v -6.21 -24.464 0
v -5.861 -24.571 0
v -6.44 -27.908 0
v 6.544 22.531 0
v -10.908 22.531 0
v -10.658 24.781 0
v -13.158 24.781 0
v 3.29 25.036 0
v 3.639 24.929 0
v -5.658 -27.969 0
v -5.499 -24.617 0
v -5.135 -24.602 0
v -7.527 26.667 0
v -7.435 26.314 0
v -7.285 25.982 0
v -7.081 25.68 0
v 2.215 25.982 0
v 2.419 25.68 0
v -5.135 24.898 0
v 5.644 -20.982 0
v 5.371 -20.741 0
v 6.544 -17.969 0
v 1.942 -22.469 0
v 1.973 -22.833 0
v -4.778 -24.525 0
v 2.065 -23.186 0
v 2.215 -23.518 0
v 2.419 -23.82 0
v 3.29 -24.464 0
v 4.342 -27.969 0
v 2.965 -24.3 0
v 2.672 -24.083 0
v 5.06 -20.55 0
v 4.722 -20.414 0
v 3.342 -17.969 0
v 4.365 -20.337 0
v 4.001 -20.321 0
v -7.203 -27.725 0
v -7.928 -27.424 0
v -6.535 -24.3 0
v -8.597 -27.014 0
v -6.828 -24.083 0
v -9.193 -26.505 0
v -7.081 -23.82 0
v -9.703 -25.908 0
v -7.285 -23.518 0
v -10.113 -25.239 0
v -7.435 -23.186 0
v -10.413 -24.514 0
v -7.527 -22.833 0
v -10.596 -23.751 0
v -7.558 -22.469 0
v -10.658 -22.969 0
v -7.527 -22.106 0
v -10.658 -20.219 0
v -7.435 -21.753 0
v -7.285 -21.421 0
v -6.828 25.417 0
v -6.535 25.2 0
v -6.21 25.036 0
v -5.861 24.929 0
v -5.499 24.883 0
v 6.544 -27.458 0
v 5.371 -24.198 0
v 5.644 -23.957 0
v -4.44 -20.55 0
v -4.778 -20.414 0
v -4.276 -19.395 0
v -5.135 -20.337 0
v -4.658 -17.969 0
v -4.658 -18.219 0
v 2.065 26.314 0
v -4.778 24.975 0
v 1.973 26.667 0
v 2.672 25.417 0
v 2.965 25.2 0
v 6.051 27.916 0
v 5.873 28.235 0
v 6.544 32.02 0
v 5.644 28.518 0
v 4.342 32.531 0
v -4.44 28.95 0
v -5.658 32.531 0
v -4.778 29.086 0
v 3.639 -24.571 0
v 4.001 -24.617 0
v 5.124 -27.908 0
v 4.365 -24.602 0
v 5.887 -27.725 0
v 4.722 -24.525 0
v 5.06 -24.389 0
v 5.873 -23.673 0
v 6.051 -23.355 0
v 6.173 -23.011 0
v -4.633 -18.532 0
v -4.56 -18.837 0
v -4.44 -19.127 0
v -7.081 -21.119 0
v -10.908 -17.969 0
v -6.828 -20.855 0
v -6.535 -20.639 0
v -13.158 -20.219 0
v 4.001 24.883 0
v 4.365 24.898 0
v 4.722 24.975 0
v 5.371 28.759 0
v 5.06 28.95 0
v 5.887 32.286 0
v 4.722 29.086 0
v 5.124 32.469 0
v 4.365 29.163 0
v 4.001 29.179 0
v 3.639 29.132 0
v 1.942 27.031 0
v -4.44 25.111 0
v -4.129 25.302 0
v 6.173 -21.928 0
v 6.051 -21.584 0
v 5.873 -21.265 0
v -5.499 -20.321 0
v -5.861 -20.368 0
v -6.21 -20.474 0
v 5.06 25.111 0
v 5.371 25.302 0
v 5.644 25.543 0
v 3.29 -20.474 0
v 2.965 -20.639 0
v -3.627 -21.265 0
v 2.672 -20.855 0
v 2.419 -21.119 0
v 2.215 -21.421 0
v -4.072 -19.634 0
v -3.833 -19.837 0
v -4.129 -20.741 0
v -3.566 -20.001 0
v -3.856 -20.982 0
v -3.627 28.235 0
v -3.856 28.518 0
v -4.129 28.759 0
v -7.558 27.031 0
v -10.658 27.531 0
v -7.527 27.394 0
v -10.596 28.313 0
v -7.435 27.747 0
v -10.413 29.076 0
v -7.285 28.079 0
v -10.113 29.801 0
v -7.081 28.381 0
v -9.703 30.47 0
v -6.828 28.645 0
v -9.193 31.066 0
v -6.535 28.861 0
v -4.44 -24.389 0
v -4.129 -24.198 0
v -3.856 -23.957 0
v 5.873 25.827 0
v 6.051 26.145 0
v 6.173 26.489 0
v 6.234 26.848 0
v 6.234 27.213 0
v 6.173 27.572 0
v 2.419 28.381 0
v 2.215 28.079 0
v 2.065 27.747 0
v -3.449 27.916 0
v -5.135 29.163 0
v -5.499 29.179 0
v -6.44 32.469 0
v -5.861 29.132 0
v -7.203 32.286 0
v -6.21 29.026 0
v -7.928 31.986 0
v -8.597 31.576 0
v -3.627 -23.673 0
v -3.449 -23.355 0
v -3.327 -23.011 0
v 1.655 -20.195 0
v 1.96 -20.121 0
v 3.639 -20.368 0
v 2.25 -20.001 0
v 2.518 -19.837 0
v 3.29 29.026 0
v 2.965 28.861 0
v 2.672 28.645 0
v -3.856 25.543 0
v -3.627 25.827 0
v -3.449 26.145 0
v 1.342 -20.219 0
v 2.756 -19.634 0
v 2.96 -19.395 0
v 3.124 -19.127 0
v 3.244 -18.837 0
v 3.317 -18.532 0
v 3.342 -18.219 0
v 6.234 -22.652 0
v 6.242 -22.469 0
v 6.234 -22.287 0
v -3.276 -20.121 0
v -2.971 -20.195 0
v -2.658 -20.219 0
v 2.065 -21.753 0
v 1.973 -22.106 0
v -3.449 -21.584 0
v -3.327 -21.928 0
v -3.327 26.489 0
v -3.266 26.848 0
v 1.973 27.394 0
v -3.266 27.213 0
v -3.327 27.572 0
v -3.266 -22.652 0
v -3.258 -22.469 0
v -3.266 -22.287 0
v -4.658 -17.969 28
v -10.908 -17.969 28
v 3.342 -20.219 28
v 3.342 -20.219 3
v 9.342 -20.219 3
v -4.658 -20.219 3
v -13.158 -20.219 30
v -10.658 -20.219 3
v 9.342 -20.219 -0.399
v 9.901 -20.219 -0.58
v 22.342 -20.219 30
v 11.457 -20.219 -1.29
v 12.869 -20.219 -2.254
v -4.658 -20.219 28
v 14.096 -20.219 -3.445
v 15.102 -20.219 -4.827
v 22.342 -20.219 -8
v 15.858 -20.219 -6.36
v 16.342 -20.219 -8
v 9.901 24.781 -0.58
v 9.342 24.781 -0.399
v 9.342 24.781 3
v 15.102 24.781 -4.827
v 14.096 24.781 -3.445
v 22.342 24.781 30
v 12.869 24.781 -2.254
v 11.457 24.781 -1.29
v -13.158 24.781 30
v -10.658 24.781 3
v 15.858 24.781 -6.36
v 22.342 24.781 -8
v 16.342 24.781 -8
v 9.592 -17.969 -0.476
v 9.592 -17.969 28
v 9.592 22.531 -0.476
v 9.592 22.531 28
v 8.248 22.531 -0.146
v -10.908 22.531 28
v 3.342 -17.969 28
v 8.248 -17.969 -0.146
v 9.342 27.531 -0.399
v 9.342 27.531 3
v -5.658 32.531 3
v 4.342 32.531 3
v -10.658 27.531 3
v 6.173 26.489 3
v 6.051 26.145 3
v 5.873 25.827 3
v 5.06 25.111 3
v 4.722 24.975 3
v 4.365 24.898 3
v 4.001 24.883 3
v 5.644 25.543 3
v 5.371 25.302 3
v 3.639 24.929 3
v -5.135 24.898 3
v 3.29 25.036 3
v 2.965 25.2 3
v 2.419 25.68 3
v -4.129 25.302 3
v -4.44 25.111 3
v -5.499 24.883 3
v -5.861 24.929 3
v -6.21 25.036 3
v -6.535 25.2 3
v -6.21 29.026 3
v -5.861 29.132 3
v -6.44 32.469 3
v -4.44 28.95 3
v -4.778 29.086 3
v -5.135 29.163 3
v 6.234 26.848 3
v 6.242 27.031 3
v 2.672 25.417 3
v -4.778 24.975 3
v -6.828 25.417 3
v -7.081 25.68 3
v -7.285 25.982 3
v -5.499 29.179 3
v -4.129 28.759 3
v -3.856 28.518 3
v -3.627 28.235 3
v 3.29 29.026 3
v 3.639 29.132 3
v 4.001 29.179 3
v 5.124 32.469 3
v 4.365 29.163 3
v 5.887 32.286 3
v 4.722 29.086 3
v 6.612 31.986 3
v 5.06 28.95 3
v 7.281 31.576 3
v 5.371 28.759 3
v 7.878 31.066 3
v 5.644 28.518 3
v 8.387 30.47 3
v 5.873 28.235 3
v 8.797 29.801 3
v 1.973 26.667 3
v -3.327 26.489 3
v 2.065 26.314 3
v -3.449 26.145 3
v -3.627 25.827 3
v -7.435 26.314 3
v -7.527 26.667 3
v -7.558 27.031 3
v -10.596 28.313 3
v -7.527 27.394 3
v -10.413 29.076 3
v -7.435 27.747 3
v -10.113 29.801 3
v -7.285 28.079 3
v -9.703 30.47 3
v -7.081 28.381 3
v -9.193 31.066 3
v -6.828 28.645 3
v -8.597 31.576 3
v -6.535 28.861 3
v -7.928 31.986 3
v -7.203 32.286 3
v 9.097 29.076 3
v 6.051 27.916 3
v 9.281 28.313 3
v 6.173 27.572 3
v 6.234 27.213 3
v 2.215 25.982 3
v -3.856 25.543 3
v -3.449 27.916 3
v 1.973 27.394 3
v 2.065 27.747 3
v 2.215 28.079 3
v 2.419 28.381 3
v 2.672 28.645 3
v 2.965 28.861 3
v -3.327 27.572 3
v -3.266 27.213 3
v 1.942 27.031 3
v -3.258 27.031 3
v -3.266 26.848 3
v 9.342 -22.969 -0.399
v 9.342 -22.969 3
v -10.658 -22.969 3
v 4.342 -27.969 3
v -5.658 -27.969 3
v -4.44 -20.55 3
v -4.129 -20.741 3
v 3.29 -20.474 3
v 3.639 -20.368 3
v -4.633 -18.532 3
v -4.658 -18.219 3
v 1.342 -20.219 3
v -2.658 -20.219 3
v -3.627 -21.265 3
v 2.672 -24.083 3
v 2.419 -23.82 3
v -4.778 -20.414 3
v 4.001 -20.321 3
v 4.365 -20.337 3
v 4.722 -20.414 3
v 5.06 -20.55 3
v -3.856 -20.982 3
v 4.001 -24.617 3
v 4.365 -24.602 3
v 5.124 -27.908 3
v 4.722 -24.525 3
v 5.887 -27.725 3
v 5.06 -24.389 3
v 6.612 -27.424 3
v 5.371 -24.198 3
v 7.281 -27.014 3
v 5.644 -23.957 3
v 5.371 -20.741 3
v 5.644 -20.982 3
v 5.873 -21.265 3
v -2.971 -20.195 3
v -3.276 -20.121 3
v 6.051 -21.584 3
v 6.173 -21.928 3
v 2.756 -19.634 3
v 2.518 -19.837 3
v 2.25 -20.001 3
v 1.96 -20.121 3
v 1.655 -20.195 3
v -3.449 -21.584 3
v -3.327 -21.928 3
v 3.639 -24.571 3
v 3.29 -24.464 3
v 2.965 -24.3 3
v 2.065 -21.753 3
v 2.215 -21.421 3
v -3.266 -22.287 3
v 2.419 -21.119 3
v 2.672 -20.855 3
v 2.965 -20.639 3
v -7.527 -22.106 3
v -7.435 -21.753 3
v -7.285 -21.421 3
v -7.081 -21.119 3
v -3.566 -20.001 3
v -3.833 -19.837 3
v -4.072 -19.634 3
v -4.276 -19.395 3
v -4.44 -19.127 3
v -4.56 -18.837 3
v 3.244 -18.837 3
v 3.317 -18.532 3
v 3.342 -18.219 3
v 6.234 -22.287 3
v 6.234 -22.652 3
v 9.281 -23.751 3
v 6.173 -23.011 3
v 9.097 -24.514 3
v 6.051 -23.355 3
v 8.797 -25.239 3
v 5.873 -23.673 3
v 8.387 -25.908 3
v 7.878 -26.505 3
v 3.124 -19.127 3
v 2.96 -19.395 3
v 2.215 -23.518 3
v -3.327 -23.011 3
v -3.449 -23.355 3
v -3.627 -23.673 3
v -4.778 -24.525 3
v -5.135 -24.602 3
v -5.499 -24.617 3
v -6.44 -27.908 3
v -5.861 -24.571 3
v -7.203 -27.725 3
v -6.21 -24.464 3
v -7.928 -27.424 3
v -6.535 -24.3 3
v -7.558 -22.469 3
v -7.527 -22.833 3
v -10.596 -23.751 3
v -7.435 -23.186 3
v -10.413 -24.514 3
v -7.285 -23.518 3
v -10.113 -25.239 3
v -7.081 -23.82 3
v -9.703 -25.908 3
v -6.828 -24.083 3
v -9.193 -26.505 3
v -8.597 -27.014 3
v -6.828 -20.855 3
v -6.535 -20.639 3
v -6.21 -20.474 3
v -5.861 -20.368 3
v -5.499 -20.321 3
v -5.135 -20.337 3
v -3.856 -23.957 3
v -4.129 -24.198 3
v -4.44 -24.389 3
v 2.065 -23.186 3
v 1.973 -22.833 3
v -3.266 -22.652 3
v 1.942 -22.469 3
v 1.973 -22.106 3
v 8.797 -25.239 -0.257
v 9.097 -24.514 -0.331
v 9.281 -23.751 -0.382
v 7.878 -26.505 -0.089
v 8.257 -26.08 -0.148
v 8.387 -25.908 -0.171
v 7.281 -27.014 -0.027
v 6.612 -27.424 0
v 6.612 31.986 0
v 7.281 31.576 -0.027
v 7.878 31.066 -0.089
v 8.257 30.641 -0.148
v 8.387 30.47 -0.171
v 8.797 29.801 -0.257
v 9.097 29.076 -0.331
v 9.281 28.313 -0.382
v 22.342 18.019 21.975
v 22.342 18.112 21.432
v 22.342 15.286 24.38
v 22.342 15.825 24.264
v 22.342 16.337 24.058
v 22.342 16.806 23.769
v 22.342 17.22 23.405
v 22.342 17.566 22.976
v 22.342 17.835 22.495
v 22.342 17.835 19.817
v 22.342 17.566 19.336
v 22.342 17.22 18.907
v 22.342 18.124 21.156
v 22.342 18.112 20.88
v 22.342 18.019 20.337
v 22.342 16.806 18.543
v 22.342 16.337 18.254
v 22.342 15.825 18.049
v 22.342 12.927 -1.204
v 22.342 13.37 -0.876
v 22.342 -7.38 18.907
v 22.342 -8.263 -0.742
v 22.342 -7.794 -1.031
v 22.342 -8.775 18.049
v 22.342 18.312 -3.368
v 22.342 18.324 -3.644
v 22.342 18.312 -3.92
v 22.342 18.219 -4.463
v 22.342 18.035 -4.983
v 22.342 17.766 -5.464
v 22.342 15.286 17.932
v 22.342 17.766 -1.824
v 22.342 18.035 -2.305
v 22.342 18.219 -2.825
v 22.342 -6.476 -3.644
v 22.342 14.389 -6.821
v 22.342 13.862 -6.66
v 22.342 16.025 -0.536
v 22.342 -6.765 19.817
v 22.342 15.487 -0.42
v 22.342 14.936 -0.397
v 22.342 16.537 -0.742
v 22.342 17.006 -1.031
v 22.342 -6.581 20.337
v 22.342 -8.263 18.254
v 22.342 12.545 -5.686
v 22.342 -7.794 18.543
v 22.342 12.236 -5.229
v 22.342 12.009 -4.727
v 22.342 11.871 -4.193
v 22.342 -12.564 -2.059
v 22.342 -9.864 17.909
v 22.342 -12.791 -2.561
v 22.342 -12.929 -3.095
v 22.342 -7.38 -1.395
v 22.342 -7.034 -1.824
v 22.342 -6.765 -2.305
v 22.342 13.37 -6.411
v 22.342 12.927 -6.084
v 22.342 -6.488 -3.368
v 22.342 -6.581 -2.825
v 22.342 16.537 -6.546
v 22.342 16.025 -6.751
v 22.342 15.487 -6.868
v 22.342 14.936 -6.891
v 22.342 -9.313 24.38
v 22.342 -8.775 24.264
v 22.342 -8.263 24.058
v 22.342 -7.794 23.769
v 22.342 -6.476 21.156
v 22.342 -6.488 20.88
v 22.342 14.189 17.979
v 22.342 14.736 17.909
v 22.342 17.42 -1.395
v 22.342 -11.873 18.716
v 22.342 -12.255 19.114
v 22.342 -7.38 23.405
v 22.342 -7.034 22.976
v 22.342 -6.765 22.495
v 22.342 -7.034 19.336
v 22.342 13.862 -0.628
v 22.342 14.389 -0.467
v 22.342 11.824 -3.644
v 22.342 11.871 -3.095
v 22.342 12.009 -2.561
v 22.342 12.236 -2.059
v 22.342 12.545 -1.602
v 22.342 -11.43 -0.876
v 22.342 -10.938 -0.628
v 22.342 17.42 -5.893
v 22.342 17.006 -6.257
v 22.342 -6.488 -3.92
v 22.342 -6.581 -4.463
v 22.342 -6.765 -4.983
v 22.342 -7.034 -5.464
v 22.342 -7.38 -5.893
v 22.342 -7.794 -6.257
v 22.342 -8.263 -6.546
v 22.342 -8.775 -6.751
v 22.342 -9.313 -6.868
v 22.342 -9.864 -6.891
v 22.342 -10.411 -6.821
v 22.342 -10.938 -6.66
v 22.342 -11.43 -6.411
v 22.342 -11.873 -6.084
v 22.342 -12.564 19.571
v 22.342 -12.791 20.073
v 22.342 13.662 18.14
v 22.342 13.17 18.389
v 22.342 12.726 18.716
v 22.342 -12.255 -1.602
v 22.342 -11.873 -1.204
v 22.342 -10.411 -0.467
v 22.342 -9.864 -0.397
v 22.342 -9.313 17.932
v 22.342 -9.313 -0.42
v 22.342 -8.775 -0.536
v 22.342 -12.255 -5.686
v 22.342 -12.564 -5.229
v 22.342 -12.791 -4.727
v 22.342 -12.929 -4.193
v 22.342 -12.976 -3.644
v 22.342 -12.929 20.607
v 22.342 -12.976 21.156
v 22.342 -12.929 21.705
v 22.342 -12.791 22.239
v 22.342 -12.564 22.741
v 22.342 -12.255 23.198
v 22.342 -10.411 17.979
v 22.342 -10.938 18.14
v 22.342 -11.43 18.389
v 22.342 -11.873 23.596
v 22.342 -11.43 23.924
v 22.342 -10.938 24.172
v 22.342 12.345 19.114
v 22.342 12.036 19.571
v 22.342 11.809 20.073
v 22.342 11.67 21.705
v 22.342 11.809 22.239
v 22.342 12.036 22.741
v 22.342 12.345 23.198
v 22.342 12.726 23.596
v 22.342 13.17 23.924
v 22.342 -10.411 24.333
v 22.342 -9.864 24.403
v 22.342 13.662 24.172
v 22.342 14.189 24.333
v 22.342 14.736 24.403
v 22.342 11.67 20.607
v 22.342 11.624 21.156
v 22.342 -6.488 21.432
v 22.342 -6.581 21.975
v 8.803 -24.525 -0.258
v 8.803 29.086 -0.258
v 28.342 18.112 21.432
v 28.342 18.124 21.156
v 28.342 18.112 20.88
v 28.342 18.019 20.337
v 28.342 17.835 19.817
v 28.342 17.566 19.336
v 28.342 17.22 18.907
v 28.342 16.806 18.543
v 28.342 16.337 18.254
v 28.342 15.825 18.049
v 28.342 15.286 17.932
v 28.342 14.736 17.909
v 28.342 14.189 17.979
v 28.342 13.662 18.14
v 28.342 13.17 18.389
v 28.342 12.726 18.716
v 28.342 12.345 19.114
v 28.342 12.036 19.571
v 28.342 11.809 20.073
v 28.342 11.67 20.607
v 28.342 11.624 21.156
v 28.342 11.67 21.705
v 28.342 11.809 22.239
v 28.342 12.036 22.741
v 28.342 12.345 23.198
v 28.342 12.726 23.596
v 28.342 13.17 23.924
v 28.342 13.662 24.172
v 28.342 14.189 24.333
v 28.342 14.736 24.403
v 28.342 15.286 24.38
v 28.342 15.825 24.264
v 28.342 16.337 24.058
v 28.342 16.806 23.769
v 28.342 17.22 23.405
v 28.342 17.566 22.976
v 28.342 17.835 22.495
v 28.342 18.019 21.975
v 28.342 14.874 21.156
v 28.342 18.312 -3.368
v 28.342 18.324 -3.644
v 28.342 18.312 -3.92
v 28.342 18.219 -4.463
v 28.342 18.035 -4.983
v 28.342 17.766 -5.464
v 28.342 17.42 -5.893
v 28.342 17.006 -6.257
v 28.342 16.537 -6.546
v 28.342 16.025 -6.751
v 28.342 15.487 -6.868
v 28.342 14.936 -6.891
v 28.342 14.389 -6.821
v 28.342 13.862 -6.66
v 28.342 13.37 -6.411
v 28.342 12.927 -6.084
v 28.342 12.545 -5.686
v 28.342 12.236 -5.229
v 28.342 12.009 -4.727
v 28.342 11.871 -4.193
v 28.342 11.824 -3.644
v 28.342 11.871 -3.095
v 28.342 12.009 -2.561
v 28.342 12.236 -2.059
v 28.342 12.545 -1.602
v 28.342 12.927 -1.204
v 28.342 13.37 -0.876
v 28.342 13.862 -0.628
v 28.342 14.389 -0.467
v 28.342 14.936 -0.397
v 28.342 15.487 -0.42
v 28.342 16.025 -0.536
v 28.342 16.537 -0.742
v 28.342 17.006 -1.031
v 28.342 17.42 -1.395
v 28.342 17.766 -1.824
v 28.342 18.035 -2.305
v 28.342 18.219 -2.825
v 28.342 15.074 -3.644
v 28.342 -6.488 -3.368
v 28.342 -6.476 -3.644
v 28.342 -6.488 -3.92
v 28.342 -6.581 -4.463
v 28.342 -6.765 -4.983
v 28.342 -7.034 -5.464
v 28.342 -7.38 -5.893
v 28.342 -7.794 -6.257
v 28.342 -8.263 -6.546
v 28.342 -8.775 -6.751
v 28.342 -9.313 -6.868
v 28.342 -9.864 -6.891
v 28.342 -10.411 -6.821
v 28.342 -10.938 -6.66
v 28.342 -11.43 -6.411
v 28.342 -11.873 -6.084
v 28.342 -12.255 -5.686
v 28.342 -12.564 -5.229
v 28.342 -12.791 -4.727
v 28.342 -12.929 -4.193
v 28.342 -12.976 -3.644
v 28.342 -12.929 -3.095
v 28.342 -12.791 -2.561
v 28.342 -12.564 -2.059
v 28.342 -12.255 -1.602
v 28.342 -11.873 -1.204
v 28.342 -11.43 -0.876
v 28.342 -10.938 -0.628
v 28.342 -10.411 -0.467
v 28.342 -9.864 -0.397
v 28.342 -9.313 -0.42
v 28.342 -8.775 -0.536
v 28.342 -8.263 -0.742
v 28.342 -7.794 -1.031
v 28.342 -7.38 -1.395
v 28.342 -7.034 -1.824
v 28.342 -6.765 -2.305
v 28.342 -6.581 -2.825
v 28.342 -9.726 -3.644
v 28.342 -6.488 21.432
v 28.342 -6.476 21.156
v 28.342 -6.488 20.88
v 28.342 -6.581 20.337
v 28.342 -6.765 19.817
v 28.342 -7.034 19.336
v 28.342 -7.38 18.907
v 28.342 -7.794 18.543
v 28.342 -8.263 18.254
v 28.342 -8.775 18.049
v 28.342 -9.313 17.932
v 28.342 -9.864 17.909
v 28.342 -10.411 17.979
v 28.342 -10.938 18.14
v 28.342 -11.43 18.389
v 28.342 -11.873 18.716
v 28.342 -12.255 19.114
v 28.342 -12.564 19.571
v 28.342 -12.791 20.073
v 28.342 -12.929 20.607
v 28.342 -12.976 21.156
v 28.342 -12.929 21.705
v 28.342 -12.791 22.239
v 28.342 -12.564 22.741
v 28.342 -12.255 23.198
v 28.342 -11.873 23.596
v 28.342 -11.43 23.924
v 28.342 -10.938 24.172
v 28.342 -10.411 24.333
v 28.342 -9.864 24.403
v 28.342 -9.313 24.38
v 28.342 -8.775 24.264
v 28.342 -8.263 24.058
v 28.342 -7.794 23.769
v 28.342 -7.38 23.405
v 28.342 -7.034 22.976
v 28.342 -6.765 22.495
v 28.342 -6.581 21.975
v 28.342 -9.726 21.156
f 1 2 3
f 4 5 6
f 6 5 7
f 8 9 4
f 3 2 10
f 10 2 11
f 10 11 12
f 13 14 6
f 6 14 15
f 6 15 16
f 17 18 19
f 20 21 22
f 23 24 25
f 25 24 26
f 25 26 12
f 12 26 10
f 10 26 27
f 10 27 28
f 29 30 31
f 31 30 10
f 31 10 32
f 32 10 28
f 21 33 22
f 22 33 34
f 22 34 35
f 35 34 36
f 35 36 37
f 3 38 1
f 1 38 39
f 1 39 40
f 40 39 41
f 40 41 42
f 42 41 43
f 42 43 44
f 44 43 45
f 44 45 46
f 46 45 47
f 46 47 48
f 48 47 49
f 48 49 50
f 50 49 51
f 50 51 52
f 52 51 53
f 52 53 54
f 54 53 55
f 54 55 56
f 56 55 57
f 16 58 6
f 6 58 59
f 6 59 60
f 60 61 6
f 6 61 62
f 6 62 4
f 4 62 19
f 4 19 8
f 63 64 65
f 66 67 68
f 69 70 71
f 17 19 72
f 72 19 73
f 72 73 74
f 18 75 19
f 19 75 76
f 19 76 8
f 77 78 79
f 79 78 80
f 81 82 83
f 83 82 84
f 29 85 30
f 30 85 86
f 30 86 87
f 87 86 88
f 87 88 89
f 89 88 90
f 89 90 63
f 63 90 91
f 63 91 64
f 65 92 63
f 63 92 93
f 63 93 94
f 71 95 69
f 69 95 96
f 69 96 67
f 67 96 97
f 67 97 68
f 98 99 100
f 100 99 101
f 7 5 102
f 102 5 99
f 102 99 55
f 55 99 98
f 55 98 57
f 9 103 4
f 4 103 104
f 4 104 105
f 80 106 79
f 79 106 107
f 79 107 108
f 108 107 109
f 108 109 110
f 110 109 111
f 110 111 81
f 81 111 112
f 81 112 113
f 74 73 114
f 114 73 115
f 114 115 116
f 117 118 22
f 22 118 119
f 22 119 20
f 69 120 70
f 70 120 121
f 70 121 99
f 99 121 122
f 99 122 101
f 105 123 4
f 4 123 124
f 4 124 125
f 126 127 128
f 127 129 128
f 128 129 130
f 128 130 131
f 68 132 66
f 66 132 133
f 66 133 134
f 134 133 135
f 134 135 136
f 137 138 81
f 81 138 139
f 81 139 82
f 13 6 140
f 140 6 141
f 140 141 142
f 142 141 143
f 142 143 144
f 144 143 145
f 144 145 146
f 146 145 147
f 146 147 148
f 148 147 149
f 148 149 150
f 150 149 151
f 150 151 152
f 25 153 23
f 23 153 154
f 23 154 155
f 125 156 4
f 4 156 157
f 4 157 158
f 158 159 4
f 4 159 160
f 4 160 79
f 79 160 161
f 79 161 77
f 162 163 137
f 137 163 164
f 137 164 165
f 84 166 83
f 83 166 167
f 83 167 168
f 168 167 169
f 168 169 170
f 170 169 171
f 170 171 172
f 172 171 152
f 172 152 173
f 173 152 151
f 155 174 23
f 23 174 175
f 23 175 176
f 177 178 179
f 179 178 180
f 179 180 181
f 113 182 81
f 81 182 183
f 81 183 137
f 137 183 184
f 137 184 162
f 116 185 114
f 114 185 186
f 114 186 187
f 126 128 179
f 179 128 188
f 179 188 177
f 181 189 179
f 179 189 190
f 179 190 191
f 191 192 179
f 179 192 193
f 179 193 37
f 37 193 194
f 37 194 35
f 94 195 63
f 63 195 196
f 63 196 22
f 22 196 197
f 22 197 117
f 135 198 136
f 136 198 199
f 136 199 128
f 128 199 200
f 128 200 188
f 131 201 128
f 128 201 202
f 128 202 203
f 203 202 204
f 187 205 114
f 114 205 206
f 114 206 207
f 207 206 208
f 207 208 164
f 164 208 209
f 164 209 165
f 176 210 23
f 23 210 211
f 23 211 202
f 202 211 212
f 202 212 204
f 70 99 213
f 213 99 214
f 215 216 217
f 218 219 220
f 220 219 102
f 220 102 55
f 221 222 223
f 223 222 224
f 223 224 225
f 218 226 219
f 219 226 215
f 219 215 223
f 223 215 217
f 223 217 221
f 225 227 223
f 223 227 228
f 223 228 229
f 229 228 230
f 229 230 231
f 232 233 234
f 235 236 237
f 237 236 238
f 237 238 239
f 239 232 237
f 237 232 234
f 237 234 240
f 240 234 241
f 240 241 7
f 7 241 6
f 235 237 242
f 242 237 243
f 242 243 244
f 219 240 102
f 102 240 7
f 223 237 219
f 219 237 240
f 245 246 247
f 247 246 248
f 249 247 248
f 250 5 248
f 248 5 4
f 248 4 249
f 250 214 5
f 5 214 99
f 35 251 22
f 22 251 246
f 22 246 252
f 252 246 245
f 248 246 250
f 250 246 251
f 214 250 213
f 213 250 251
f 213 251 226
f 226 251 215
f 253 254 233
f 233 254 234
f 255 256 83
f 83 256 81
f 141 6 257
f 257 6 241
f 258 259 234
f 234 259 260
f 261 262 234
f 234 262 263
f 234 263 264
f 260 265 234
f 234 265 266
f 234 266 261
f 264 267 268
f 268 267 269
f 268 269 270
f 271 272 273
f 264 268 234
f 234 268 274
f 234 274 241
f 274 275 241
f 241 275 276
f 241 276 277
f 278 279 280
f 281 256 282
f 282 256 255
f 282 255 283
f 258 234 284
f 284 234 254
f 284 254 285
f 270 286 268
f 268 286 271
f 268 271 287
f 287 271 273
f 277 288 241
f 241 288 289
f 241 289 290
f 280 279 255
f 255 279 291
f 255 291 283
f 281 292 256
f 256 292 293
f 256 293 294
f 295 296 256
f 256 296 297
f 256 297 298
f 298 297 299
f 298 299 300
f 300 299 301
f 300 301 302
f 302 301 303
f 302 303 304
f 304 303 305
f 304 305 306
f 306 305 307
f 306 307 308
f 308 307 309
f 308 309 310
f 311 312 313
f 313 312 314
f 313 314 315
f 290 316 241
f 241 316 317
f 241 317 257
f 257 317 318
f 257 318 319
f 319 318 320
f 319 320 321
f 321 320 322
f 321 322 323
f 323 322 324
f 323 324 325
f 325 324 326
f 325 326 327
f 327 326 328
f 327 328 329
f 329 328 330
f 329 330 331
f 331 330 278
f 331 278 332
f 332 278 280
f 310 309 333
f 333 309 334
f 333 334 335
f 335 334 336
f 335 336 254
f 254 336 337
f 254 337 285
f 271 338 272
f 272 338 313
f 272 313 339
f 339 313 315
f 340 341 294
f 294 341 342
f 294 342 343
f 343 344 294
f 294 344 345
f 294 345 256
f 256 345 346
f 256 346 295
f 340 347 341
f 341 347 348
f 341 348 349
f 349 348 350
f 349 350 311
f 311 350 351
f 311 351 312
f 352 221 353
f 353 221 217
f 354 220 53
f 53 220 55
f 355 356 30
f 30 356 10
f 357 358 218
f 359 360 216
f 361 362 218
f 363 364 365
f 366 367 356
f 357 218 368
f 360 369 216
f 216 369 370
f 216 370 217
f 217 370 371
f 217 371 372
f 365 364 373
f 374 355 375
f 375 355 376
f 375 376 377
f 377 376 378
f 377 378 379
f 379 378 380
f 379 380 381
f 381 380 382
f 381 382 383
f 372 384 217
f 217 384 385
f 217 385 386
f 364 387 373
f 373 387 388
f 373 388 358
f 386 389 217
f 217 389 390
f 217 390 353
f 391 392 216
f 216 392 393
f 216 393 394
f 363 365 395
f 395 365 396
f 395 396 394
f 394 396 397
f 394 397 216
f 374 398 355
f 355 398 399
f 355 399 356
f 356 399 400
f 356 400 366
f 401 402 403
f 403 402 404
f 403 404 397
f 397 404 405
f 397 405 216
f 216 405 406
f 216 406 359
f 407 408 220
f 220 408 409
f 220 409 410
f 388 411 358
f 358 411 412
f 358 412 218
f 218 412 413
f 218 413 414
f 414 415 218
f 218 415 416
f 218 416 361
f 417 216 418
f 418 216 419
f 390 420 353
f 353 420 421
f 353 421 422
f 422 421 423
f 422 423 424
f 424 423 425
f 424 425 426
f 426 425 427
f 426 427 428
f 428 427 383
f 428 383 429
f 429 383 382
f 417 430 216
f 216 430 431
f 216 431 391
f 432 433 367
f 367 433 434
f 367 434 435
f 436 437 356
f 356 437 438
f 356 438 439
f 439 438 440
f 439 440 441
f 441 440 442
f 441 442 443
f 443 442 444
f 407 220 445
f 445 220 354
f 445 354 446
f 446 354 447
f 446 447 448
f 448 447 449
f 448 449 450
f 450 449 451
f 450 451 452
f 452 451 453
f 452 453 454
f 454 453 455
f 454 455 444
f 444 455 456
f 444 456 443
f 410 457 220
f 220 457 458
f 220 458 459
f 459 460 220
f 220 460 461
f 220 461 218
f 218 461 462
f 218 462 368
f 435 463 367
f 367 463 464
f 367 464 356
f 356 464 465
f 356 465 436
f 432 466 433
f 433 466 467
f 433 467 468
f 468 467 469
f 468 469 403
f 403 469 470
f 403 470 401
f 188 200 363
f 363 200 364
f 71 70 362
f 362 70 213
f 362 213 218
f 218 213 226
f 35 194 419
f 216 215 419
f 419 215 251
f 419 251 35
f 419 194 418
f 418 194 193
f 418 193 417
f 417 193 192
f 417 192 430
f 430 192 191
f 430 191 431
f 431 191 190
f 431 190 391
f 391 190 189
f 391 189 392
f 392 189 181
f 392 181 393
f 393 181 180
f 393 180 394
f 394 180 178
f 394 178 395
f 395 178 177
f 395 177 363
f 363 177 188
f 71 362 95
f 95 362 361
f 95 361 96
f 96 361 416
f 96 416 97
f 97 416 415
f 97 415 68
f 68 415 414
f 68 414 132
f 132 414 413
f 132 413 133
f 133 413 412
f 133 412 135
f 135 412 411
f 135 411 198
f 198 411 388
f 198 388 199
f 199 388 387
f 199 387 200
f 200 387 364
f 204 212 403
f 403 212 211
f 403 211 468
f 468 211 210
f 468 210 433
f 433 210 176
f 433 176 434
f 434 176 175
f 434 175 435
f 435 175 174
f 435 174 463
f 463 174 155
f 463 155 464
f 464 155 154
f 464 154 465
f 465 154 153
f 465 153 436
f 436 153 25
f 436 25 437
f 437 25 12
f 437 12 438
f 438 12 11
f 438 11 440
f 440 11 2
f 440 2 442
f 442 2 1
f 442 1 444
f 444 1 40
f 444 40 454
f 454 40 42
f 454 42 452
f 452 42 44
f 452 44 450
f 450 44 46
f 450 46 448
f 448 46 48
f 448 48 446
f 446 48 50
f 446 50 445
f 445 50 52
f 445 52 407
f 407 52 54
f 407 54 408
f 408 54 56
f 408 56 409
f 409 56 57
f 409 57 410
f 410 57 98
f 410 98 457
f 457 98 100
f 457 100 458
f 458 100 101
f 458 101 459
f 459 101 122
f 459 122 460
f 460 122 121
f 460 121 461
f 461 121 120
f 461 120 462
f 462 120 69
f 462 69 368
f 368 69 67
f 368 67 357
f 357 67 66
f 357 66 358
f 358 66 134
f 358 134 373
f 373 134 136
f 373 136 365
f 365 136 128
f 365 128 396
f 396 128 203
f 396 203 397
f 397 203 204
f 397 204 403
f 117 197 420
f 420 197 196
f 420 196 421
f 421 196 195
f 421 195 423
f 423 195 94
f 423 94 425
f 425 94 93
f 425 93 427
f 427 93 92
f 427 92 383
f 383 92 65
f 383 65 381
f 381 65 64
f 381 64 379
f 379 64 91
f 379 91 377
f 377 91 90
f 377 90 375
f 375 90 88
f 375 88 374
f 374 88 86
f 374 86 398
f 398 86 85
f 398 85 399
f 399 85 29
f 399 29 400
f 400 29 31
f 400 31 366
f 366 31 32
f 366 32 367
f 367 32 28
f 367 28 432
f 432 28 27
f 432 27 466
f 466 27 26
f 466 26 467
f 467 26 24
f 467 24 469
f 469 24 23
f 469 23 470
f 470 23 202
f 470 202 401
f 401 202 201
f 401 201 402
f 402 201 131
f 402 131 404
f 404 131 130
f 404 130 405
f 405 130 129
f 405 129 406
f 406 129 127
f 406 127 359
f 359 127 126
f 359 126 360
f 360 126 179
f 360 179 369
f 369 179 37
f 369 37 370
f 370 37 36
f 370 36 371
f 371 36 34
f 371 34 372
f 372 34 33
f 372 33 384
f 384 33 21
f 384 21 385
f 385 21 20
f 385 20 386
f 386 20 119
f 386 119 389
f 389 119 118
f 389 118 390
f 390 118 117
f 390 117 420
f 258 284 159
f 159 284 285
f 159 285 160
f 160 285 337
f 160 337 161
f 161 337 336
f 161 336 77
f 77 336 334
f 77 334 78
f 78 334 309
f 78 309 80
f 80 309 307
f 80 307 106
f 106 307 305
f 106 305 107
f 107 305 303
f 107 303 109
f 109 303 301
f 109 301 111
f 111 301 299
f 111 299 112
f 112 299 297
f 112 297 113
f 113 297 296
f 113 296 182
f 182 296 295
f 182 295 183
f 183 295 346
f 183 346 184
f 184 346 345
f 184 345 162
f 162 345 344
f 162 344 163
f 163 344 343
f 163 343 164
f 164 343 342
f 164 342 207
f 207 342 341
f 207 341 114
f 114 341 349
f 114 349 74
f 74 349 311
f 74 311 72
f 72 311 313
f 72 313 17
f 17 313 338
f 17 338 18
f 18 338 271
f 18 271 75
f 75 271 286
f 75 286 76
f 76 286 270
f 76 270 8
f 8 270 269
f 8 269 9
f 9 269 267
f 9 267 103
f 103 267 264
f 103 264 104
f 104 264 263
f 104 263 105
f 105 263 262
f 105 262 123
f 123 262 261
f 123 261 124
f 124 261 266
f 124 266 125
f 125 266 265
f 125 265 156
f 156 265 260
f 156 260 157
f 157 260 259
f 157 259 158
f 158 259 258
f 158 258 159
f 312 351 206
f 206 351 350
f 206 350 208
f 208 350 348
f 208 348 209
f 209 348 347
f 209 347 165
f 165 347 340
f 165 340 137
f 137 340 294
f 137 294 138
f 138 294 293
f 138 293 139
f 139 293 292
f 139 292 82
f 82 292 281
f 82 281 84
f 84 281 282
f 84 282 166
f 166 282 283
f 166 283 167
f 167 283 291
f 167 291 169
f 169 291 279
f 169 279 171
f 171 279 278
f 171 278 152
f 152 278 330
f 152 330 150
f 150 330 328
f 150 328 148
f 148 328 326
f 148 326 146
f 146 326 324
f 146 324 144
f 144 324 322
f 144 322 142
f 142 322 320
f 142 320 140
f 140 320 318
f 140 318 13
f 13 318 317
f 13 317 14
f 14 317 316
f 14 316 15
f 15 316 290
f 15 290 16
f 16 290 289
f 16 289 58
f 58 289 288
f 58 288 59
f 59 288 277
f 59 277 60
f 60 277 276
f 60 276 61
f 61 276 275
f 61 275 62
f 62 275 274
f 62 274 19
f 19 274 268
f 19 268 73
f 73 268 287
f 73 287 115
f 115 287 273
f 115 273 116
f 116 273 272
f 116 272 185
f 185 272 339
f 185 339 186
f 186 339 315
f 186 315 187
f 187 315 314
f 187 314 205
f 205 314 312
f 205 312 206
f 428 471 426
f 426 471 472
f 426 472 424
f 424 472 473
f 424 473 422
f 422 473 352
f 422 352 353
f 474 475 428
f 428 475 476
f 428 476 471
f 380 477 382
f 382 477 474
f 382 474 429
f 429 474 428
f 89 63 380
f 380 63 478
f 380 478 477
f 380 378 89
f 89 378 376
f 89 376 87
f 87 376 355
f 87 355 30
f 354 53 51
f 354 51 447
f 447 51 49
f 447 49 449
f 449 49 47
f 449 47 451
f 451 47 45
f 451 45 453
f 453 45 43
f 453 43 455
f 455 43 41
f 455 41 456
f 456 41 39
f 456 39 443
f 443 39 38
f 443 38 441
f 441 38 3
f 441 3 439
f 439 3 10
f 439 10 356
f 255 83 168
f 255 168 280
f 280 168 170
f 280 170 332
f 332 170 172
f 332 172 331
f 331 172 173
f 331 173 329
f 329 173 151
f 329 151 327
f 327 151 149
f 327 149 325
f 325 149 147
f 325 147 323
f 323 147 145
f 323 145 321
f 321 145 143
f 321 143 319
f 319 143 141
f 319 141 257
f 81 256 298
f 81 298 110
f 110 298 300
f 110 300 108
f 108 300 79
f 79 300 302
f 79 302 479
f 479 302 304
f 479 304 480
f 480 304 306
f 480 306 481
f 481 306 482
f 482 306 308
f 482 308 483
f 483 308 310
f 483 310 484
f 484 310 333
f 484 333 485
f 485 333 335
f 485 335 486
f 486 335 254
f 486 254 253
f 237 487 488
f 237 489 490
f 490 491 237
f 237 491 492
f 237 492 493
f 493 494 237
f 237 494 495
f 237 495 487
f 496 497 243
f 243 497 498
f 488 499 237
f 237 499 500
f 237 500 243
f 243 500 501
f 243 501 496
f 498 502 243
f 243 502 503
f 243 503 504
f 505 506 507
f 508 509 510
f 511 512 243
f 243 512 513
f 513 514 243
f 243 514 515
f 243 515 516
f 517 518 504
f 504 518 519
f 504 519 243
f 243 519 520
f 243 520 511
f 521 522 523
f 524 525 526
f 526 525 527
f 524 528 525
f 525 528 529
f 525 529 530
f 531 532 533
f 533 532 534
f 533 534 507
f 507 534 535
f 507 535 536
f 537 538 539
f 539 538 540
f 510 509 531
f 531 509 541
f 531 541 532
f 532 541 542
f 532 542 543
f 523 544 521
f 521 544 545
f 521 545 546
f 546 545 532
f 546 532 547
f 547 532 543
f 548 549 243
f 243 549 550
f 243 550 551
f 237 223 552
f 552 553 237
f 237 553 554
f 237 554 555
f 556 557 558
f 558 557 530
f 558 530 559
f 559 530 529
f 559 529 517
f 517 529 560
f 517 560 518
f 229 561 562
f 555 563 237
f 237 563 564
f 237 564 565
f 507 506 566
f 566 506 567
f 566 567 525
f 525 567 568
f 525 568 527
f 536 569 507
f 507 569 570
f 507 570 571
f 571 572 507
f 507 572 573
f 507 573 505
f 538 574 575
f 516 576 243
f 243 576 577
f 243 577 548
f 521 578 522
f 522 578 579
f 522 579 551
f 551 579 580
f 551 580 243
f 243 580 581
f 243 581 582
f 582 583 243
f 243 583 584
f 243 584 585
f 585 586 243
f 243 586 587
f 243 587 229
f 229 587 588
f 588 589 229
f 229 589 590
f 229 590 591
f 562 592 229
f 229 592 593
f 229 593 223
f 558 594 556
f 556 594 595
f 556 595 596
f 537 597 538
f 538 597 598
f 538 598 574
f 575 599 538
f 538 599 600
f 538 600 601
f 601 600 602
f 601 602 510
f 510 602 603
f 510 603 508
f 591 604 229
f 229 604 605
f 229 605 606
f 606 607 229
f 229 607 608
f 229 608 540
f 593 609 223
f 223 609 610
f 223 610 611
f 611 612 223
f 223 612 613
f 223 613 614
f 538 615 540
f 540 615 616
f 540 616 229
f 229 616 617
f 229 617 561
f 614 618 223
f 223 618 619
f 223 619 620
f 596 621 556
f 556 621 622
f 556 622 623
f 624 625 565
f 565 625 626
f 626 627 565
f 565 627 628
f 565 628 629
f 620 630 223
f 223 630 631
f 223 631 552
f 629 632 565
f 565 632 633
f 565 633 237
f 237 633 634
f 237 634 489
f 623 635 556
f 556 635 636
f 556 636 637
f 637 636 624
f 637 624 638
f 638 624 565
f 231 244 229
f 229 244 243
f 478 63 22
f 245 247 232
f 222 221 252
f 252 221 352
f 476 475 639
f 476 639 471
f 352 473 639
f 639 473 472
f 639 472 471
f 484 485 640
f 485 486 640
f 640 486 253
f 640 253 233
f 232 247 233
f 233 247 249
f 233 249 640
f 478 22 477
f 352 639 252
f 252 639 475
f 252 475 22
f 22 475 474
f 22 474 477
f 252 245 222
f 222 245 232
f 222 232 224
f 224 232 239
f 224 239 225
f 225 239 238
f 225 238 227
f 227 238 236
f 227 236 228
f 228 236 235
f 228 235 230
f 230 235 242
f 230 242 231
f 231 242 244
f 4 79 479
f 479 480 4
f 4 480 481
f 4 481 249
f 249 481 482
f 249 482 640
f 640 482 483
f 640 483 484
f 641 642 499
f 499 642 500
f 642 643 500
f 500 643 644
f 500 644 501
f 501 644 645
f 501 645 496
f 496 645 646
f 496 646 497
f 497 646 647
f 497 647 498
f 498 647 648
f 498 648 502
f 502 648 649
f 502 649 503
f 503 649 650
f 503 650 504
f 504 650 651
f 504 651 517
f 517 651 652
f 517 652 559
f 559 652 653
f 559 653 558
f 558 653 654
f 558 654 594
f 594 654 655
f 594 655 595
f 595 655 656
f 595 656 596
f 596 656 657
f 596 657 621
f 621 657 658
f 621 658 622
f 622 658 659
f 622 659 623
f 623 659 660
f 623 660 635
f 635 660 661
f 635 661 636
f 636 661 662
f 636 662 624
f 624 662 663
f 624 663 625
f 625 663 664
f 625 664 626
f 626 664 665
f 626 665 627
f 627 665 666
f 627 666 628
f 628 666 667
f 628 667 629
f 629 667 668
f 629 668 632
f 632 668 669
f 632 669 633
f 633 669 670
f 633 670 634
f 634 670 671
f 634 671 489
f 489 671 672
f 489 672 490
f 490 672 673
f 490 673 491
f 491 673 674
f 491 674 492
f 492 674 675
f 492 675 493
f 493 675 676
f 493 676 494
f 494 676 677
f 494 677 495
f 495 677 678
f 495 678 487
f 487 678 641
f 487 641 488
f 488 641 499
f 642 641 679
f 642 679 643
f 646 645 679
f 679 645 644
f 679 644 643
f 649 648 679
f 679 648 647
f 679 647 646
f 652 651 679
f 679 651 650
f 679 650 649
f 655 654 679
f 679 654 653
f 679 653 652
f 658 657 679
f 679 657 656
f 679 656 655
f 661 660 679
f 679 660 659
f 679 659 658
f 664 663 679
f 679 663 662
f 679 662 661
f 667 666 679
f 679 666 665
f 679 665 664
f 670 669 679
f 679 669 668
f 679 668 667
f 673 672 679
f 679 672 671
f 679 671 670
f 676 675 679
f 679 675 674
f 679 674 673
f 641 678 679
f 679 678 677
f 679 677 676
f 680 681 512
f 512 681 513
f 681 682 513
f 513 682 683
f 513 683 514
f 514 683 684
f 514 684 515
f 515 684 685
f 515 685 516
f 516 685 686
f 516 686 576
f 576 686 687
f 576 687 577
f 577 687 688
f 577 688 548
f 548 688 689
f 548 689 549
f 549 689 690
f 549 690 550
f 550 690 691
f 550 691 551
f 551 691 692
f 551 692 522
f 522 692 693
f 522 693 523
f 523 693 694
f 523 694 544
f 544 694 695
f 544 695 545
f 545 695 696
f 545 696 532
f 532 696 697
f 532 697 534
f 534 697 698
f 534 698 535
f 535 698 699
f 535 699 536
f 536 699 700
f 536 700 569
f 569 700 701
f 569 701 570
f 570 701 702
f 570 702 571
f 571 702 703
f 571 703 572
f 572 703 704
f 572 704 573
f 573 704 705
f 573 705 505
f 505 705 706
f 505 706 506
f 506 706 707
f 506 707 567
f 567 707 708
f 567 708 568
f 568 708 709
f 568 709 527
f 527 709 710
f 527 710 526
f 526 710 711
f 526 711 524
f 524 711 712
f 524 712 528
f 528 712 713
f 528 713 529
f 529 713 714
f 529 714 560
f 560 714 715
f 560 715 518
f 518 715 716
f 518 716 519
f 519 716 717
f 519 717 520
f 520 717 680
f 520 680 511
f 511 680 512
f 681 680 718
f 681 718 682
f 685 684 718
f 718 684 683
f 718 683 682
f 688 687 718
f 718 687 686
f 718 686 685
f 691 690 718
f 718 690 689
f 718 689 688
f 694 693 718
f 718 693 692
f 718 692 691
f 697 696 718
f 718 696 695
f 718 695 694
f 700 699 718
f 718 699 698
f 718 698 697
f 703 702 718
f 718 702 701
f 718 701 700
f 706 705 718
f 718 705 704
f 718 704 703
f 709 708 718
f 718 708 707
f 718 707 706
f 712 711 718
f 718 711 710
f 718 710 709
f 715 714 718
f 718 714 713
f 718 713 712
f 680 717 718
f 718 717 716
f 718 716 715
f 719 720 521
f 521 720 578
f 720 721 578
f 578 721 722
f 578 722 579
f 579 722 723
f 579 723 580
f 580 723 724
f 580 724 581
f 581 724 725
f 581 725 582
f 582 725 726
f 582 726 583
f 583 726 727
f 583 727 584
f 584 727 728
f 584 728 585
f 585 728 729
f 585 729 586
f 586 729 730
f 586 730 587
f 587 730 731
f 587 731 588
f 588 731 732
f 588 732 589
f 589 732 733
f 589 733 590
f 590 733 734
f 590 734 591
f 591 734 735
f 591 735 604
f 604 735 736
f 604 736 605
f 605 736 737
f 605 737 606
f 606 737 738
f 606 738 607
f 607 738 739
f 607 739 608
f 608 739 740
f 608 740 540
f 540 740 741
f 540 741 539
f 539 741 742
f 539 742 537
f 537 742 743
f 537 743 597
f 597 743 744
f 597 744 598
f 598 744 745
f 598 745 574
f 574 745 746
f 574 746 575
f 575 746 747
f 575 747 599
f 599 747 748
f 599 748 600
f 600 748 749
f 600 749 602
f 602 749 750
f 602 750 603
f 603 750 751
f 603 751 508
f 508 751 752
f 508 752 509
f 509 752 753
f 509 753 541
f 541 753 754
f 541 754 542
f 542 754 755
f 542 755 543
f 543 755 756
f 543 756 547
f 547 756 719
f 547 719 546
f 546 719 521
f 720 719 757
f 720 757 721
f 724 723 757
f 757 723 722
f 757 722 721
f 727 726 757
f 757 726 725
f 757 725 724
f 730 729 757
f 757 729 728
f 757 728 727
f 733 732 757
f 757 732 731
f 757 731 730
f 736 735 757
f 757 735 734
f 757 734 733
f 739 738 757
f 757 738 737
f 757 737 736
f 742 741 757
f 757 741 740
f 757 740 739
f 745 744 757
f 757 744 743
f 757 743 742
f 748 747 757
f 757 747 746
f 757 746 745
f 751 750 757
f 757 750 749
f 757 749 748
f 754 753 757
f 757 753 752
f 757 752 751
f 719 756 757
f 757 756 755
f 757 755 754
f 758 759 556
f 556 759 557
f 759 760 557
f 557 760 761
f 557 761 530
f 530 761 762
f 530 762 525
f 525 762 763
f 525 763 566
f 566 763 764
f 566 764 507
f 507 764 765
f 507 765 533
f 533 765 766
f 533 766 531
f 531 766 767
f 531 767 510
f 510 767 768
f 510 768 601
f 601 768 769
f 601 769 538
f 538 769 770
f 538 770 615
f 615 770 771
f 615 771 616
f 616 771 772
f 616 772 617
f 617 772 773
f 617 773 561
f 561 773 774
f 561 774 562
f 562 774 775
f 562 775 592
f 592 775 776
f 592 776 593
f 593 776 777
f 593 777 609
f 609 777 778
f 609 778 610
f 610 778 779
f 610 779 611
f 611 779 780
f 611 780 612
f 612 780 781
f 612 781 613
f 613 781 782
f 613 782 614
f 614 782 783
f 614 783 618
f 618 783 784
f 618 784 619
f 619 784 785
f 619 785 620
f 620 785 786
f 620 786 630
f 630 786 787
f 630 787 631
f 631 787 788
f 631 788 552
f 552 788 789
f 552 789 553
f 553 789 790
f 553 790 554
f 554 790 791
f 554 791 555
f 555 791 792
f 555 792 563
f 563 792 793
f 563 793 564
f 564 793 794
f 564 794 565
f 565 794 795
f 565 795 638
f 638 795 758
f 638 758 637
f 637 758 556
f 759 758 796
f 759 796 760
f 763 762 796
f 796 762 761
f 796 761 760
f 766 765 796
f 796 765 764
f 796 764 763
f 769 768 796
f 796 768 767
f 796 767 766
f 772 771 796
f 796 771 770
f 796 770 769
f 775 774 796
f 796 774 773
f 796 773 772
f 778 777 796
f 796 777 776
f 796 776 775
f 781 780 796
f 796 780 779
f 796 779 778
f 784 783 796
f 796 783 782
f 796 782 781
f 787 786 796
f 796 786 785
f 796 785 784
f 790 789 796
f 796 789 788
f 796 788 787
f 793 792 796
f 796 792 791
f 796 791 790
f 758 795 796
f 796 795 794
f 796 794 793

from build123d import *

# Parameters (mm, degrees)
SKETCH1_W           = 25
SKETCH1_H           = 45
BOSS_EXTRUDE1_DEPTH = 30
SKETCH2_W           = 20.5
SKETCH2_H           = 40.5
CUT_EXTRUDE1_DEPTH  = 28
SKETCH3_W           = 20
SKETCH3_H           = 7.75
BOSS_EXTRUDE2_DEPTH = 3
SKETCH5_W           = 8
SKETCH5_H           = 28
CUT_EXTRUDE2_DEPTH  = 2.25
FILLET1_R           = 2
SKETCH6_R           = 2.15
CUT_EXTRUDE3_DEPTH  = 4
FILLET2_R           = 5
SKETCH8_W           = 30
SKETCH8_H           = 45
BOSS_EXTRUDE3_DEPTH = 10.5
SKETCH13_W          = 6
SKETCH13_H          = 45
BOSS_EXTRUDE6_DEPTH = 8
FILLET4_START       = -20.219298246
FILLET4_DEPTH       = 45
FILLET4_START_2     = -27.458286573
FILLET4_2_DEPTH     = 9.488988327
FILLET4_START_3     = 22.530701754
FILLET4_3_DEPTH     = 9.488988328
FILLET4_START_4     = -1
FILLET4_4_OUTLINE_W = 0.25
FILLET4_4_OUTLINE_H = 40.5
FILLET4_4_DEPTH     = 1
SKETCH14_R          = 3.25
BOSS_EXTRUDE7_DEPTH = 6


with BuildPart() as part:
    # Sketch1 → Boss-Extrude1 (new body)
    with BuildSketch(Plane.XY):
        with Locations((-0.657894737, 2.280701754)):
            Rectangle(SKETCH1_W, SKETCH1_H)
    extrude(amount=BOSS_EXTRUDE1_DEPTH)

    # Sketch2 → Cut-Extrude1 (cut)
    with BuildSketch(Plane(origin=(0, 0, 0), x_dir=(-1, 0, 0), z_dir=(0, 0, -1))):
        with Locations((0.657894737, 2.280701754)):
            Rectangle(SKETCH2_W, SKETCH2_H)
    extrude(amount=-CUT_EXTRUDE1_DEPTH, mode=Mode.SUBTRACT)

    # Sketch3 → Boss-Extrude2 (add)
    with BuildSketch(Plane(origin=(0, 0, 0), x_dir=(-1, 0, 0), z_dir=(0, 0, -1))):
        with Locations((0.657894737, 28.655701754)):
            Rectangle(SKETCH3_W, SKETCH3_H)
        with Locations((0.657894737, -24.094298246)):
            Rectangle(SKETCH3_W, SKETCH3_H)
    extrude(amount=-BOSS_EXTRUDE2_DEPTH)

    # Sketch5 → Cut-Extrude2 (cut)
    with BuildSketch(Plane(origin=(0, -17.969298246, 0), x_dir=(1, 0, 0), z_dir=(0, 1, 0))):
        with Locations((-0.657894737, -14)):
            Rectangle(SKETCH5_W, SKETCH5_H)
    extrude(amount=-CUT_EXTRUDE2_DEPTH, mode=Mode.SUBTRACT)

    # Fillet1
    fillet1_edges = [part.edges().sort_by_distance(p)[0] for p in [
        (-4.657894737, -20.219298246, 1.5),
        (3.342105263, -20.219298246, 1.5),
    ]]
    fillet(fillet1_edges, radius=FILLET1_R)

    # Sketch6 → Cut-Extrude3 (cut)
    with BuildSketch(Plane(origin=(0, 0, 0), x_dir=(-1, 0, 0), z_dir=(0, 0, -1))):
        with Locations((-4.092105263, 27.030701754)):
            Circle(SKETCH6_R)
        with Locations((5.407894737, 27.030701754)):
            Circle(SKETCH6_R)
        with Locations((5.407894737, -22.469298246)):
            Circle(SKETCH6_R)
        with Locations((-4.092105263, -22.469298246)):
            Circle(SKETCH6_R)
    extrude(amount=-CUT_EXTRUDE3_DEPTH, mode=Mode.SUBTRACT)

    # Fillet2
    fillet2_edges = [part.edges().sort_by_distance(p)[0] for p in [
        (9.342105263, 32.530701754, 1.5),
        (-10.657894737, 32.530701754, 1.5),
        (9.342105263, -27.969298246, 1.5),
        (-10.657894737, -27.969298246, 1.5),
    ]]
    fillet(fillet2_edges, radius=FILLET2_R)

    # Sketch8 → Boss-Extrude3 (add)
    with BuildSketch(Plane(origin=(11.842105263, 0, 0), x_dir=(0, 0, -1), z_dir=(1, 0, 0))):
        with Locations((-15, 2.280701754)):
            Rectangle(SKETCH8_W, SKETCH8_H)
    extrude(amount=BOSS_EXTRUDE3_DEPTH)

    # Sketch13 → Boss-Extrude6 (add)
    with BuildSketch(Plane(origin=(0, 0, 0), x_dir=(-1, 0, 0), z_dir=(0, 0, -1))):
        with Locations((-19.342105263, 2.280701754)):
            Rectangle(SKETCH13_W, SKETCH13_H)
    extrude(amount=BOSS_EXTRUDE6_DEPTH)

    # Fillet4: read off the stored shape, not the designer's step
    # Fillet4 outline → Fillet4 (add)
    with BuildSketch(Plane(origin=(0, 0, 0), x_dir=(1, 0, 0), z_dir=(0, 1, 0)).offset(FILLET4_START)):
        with BuildLine():
            Line((9.342105263, 0.399404936), (9.342105263, 0))
            Line((9.342105263, 0), (16.342105263, 0))
            Line((16.342105263, 0), (16.342105263, 8))
            ThreePointArc((16.342105263, 8), (13.899861657, 3.225529433), (9.342105263, 0.399404936))
        make_face()
    extrude(amount=FILLET4_DEPTH)

    # Fillet4 2 outline → Fillet4 2 (add)
    with BuildSketch(Plane(origin=(0, 0, 0), x_dir=(1, 0, 0), z_dir=(0, 1, 0)).offset(FILLET4_START_2)):
        with BuildLine():
            Line((6.544146292, 0), (9.342105263, 0))
            Line((9.342105263, 0), (9.342105263, 0.399404936))
            ThreePointArc((9.342105263, 0.399404936), (7.957307527, 0.100354788), (6.544146292, 0))
        make_face()
    extrude(amount=FILLET4_2_DEPTH)

    # Fillet4 3 outline → Fillet4 3 (add)
    with BuildSketch(Plane(origin=(0, 0, 0), x_dir=(1, 0, 0), z_dir=(0, 1, 0)).offset(FILLET4_START_3)):
        with BuildLine():
            Line((6.544146292, 0), (9.342105263, 0))
            Line((9.342105263, 0), (9.342105263, 0.399404936))
            ThreePointArc((9.342105263, 0.399404936), (7.957307527, 0.100354788), (6.544146292, 0))
        make_face()
    extrude(amount=FILLET4_3_DEPTH)

    # Fillet4 4 outline → Fillet4 4 (cut)
    with BuildSketch(Plane.XY.offset(FILLET4_START_4)):
        with BuildLine():
            Line((9.342105263, -27.458286573), (9.342105263, -22.969298246))
            ThreePointArc((9.342105263, -22.969298246), (8.58534724, -25.614085104), (6.544146253, -27.458286493))
            Line((6.544146253, -27.458286493), (9.342105263, -27.458286573))
        make_face()
        with BuildLine():
            Line((9.342105263, 32.019690082), (6.544146252, 32.019690001))
            ThreePointArc((6.544146252, 32.019690001), (8.58534724, 30.175488613), (9.342105263, 27.530701754))
            Line((9.342105263, 27.530701754), (9.342105263, 32.019690082))
        make_face()
        with Locations((9.467105263, 2.280701754)):
            Rectangle(FILLET4_4_OUTLINE_W, FILLET4_4_OUTLINE_H)
    extrude(amount=FILLET4_4_DEPTH, mode=Mode.SUBTRACT)

    # Sketch14 → Boss-Extrude7 (add)
    with BuildSketch(Plane(origin=(22.342105263, 0, 0), x_dir=(0, 0, -1), z_dir=(1, 0, 0))):
        with Locations(Location((-21.156070928, 14.873665711, 0), (0, 0, 90))):
            Circle(SKETCH14_R)
        with Locations(Location((3.643929072, 15.073774065, 0), (0, 0, 90))):
            Circle(SKETCH14_R)
        with Locations(Location((3.643929072, -9.726225935, 0), (0, 0, 90))):
            Circle(SKETCH14_R)
        with Locations(Location((-21.156070928, -9.726225935, 0), (0, 0, 90))):
            Circle(SKETCH14_R)
    extrude(amount=BOSS_EXTRUDE7_DEPTH)


solid = part.part
